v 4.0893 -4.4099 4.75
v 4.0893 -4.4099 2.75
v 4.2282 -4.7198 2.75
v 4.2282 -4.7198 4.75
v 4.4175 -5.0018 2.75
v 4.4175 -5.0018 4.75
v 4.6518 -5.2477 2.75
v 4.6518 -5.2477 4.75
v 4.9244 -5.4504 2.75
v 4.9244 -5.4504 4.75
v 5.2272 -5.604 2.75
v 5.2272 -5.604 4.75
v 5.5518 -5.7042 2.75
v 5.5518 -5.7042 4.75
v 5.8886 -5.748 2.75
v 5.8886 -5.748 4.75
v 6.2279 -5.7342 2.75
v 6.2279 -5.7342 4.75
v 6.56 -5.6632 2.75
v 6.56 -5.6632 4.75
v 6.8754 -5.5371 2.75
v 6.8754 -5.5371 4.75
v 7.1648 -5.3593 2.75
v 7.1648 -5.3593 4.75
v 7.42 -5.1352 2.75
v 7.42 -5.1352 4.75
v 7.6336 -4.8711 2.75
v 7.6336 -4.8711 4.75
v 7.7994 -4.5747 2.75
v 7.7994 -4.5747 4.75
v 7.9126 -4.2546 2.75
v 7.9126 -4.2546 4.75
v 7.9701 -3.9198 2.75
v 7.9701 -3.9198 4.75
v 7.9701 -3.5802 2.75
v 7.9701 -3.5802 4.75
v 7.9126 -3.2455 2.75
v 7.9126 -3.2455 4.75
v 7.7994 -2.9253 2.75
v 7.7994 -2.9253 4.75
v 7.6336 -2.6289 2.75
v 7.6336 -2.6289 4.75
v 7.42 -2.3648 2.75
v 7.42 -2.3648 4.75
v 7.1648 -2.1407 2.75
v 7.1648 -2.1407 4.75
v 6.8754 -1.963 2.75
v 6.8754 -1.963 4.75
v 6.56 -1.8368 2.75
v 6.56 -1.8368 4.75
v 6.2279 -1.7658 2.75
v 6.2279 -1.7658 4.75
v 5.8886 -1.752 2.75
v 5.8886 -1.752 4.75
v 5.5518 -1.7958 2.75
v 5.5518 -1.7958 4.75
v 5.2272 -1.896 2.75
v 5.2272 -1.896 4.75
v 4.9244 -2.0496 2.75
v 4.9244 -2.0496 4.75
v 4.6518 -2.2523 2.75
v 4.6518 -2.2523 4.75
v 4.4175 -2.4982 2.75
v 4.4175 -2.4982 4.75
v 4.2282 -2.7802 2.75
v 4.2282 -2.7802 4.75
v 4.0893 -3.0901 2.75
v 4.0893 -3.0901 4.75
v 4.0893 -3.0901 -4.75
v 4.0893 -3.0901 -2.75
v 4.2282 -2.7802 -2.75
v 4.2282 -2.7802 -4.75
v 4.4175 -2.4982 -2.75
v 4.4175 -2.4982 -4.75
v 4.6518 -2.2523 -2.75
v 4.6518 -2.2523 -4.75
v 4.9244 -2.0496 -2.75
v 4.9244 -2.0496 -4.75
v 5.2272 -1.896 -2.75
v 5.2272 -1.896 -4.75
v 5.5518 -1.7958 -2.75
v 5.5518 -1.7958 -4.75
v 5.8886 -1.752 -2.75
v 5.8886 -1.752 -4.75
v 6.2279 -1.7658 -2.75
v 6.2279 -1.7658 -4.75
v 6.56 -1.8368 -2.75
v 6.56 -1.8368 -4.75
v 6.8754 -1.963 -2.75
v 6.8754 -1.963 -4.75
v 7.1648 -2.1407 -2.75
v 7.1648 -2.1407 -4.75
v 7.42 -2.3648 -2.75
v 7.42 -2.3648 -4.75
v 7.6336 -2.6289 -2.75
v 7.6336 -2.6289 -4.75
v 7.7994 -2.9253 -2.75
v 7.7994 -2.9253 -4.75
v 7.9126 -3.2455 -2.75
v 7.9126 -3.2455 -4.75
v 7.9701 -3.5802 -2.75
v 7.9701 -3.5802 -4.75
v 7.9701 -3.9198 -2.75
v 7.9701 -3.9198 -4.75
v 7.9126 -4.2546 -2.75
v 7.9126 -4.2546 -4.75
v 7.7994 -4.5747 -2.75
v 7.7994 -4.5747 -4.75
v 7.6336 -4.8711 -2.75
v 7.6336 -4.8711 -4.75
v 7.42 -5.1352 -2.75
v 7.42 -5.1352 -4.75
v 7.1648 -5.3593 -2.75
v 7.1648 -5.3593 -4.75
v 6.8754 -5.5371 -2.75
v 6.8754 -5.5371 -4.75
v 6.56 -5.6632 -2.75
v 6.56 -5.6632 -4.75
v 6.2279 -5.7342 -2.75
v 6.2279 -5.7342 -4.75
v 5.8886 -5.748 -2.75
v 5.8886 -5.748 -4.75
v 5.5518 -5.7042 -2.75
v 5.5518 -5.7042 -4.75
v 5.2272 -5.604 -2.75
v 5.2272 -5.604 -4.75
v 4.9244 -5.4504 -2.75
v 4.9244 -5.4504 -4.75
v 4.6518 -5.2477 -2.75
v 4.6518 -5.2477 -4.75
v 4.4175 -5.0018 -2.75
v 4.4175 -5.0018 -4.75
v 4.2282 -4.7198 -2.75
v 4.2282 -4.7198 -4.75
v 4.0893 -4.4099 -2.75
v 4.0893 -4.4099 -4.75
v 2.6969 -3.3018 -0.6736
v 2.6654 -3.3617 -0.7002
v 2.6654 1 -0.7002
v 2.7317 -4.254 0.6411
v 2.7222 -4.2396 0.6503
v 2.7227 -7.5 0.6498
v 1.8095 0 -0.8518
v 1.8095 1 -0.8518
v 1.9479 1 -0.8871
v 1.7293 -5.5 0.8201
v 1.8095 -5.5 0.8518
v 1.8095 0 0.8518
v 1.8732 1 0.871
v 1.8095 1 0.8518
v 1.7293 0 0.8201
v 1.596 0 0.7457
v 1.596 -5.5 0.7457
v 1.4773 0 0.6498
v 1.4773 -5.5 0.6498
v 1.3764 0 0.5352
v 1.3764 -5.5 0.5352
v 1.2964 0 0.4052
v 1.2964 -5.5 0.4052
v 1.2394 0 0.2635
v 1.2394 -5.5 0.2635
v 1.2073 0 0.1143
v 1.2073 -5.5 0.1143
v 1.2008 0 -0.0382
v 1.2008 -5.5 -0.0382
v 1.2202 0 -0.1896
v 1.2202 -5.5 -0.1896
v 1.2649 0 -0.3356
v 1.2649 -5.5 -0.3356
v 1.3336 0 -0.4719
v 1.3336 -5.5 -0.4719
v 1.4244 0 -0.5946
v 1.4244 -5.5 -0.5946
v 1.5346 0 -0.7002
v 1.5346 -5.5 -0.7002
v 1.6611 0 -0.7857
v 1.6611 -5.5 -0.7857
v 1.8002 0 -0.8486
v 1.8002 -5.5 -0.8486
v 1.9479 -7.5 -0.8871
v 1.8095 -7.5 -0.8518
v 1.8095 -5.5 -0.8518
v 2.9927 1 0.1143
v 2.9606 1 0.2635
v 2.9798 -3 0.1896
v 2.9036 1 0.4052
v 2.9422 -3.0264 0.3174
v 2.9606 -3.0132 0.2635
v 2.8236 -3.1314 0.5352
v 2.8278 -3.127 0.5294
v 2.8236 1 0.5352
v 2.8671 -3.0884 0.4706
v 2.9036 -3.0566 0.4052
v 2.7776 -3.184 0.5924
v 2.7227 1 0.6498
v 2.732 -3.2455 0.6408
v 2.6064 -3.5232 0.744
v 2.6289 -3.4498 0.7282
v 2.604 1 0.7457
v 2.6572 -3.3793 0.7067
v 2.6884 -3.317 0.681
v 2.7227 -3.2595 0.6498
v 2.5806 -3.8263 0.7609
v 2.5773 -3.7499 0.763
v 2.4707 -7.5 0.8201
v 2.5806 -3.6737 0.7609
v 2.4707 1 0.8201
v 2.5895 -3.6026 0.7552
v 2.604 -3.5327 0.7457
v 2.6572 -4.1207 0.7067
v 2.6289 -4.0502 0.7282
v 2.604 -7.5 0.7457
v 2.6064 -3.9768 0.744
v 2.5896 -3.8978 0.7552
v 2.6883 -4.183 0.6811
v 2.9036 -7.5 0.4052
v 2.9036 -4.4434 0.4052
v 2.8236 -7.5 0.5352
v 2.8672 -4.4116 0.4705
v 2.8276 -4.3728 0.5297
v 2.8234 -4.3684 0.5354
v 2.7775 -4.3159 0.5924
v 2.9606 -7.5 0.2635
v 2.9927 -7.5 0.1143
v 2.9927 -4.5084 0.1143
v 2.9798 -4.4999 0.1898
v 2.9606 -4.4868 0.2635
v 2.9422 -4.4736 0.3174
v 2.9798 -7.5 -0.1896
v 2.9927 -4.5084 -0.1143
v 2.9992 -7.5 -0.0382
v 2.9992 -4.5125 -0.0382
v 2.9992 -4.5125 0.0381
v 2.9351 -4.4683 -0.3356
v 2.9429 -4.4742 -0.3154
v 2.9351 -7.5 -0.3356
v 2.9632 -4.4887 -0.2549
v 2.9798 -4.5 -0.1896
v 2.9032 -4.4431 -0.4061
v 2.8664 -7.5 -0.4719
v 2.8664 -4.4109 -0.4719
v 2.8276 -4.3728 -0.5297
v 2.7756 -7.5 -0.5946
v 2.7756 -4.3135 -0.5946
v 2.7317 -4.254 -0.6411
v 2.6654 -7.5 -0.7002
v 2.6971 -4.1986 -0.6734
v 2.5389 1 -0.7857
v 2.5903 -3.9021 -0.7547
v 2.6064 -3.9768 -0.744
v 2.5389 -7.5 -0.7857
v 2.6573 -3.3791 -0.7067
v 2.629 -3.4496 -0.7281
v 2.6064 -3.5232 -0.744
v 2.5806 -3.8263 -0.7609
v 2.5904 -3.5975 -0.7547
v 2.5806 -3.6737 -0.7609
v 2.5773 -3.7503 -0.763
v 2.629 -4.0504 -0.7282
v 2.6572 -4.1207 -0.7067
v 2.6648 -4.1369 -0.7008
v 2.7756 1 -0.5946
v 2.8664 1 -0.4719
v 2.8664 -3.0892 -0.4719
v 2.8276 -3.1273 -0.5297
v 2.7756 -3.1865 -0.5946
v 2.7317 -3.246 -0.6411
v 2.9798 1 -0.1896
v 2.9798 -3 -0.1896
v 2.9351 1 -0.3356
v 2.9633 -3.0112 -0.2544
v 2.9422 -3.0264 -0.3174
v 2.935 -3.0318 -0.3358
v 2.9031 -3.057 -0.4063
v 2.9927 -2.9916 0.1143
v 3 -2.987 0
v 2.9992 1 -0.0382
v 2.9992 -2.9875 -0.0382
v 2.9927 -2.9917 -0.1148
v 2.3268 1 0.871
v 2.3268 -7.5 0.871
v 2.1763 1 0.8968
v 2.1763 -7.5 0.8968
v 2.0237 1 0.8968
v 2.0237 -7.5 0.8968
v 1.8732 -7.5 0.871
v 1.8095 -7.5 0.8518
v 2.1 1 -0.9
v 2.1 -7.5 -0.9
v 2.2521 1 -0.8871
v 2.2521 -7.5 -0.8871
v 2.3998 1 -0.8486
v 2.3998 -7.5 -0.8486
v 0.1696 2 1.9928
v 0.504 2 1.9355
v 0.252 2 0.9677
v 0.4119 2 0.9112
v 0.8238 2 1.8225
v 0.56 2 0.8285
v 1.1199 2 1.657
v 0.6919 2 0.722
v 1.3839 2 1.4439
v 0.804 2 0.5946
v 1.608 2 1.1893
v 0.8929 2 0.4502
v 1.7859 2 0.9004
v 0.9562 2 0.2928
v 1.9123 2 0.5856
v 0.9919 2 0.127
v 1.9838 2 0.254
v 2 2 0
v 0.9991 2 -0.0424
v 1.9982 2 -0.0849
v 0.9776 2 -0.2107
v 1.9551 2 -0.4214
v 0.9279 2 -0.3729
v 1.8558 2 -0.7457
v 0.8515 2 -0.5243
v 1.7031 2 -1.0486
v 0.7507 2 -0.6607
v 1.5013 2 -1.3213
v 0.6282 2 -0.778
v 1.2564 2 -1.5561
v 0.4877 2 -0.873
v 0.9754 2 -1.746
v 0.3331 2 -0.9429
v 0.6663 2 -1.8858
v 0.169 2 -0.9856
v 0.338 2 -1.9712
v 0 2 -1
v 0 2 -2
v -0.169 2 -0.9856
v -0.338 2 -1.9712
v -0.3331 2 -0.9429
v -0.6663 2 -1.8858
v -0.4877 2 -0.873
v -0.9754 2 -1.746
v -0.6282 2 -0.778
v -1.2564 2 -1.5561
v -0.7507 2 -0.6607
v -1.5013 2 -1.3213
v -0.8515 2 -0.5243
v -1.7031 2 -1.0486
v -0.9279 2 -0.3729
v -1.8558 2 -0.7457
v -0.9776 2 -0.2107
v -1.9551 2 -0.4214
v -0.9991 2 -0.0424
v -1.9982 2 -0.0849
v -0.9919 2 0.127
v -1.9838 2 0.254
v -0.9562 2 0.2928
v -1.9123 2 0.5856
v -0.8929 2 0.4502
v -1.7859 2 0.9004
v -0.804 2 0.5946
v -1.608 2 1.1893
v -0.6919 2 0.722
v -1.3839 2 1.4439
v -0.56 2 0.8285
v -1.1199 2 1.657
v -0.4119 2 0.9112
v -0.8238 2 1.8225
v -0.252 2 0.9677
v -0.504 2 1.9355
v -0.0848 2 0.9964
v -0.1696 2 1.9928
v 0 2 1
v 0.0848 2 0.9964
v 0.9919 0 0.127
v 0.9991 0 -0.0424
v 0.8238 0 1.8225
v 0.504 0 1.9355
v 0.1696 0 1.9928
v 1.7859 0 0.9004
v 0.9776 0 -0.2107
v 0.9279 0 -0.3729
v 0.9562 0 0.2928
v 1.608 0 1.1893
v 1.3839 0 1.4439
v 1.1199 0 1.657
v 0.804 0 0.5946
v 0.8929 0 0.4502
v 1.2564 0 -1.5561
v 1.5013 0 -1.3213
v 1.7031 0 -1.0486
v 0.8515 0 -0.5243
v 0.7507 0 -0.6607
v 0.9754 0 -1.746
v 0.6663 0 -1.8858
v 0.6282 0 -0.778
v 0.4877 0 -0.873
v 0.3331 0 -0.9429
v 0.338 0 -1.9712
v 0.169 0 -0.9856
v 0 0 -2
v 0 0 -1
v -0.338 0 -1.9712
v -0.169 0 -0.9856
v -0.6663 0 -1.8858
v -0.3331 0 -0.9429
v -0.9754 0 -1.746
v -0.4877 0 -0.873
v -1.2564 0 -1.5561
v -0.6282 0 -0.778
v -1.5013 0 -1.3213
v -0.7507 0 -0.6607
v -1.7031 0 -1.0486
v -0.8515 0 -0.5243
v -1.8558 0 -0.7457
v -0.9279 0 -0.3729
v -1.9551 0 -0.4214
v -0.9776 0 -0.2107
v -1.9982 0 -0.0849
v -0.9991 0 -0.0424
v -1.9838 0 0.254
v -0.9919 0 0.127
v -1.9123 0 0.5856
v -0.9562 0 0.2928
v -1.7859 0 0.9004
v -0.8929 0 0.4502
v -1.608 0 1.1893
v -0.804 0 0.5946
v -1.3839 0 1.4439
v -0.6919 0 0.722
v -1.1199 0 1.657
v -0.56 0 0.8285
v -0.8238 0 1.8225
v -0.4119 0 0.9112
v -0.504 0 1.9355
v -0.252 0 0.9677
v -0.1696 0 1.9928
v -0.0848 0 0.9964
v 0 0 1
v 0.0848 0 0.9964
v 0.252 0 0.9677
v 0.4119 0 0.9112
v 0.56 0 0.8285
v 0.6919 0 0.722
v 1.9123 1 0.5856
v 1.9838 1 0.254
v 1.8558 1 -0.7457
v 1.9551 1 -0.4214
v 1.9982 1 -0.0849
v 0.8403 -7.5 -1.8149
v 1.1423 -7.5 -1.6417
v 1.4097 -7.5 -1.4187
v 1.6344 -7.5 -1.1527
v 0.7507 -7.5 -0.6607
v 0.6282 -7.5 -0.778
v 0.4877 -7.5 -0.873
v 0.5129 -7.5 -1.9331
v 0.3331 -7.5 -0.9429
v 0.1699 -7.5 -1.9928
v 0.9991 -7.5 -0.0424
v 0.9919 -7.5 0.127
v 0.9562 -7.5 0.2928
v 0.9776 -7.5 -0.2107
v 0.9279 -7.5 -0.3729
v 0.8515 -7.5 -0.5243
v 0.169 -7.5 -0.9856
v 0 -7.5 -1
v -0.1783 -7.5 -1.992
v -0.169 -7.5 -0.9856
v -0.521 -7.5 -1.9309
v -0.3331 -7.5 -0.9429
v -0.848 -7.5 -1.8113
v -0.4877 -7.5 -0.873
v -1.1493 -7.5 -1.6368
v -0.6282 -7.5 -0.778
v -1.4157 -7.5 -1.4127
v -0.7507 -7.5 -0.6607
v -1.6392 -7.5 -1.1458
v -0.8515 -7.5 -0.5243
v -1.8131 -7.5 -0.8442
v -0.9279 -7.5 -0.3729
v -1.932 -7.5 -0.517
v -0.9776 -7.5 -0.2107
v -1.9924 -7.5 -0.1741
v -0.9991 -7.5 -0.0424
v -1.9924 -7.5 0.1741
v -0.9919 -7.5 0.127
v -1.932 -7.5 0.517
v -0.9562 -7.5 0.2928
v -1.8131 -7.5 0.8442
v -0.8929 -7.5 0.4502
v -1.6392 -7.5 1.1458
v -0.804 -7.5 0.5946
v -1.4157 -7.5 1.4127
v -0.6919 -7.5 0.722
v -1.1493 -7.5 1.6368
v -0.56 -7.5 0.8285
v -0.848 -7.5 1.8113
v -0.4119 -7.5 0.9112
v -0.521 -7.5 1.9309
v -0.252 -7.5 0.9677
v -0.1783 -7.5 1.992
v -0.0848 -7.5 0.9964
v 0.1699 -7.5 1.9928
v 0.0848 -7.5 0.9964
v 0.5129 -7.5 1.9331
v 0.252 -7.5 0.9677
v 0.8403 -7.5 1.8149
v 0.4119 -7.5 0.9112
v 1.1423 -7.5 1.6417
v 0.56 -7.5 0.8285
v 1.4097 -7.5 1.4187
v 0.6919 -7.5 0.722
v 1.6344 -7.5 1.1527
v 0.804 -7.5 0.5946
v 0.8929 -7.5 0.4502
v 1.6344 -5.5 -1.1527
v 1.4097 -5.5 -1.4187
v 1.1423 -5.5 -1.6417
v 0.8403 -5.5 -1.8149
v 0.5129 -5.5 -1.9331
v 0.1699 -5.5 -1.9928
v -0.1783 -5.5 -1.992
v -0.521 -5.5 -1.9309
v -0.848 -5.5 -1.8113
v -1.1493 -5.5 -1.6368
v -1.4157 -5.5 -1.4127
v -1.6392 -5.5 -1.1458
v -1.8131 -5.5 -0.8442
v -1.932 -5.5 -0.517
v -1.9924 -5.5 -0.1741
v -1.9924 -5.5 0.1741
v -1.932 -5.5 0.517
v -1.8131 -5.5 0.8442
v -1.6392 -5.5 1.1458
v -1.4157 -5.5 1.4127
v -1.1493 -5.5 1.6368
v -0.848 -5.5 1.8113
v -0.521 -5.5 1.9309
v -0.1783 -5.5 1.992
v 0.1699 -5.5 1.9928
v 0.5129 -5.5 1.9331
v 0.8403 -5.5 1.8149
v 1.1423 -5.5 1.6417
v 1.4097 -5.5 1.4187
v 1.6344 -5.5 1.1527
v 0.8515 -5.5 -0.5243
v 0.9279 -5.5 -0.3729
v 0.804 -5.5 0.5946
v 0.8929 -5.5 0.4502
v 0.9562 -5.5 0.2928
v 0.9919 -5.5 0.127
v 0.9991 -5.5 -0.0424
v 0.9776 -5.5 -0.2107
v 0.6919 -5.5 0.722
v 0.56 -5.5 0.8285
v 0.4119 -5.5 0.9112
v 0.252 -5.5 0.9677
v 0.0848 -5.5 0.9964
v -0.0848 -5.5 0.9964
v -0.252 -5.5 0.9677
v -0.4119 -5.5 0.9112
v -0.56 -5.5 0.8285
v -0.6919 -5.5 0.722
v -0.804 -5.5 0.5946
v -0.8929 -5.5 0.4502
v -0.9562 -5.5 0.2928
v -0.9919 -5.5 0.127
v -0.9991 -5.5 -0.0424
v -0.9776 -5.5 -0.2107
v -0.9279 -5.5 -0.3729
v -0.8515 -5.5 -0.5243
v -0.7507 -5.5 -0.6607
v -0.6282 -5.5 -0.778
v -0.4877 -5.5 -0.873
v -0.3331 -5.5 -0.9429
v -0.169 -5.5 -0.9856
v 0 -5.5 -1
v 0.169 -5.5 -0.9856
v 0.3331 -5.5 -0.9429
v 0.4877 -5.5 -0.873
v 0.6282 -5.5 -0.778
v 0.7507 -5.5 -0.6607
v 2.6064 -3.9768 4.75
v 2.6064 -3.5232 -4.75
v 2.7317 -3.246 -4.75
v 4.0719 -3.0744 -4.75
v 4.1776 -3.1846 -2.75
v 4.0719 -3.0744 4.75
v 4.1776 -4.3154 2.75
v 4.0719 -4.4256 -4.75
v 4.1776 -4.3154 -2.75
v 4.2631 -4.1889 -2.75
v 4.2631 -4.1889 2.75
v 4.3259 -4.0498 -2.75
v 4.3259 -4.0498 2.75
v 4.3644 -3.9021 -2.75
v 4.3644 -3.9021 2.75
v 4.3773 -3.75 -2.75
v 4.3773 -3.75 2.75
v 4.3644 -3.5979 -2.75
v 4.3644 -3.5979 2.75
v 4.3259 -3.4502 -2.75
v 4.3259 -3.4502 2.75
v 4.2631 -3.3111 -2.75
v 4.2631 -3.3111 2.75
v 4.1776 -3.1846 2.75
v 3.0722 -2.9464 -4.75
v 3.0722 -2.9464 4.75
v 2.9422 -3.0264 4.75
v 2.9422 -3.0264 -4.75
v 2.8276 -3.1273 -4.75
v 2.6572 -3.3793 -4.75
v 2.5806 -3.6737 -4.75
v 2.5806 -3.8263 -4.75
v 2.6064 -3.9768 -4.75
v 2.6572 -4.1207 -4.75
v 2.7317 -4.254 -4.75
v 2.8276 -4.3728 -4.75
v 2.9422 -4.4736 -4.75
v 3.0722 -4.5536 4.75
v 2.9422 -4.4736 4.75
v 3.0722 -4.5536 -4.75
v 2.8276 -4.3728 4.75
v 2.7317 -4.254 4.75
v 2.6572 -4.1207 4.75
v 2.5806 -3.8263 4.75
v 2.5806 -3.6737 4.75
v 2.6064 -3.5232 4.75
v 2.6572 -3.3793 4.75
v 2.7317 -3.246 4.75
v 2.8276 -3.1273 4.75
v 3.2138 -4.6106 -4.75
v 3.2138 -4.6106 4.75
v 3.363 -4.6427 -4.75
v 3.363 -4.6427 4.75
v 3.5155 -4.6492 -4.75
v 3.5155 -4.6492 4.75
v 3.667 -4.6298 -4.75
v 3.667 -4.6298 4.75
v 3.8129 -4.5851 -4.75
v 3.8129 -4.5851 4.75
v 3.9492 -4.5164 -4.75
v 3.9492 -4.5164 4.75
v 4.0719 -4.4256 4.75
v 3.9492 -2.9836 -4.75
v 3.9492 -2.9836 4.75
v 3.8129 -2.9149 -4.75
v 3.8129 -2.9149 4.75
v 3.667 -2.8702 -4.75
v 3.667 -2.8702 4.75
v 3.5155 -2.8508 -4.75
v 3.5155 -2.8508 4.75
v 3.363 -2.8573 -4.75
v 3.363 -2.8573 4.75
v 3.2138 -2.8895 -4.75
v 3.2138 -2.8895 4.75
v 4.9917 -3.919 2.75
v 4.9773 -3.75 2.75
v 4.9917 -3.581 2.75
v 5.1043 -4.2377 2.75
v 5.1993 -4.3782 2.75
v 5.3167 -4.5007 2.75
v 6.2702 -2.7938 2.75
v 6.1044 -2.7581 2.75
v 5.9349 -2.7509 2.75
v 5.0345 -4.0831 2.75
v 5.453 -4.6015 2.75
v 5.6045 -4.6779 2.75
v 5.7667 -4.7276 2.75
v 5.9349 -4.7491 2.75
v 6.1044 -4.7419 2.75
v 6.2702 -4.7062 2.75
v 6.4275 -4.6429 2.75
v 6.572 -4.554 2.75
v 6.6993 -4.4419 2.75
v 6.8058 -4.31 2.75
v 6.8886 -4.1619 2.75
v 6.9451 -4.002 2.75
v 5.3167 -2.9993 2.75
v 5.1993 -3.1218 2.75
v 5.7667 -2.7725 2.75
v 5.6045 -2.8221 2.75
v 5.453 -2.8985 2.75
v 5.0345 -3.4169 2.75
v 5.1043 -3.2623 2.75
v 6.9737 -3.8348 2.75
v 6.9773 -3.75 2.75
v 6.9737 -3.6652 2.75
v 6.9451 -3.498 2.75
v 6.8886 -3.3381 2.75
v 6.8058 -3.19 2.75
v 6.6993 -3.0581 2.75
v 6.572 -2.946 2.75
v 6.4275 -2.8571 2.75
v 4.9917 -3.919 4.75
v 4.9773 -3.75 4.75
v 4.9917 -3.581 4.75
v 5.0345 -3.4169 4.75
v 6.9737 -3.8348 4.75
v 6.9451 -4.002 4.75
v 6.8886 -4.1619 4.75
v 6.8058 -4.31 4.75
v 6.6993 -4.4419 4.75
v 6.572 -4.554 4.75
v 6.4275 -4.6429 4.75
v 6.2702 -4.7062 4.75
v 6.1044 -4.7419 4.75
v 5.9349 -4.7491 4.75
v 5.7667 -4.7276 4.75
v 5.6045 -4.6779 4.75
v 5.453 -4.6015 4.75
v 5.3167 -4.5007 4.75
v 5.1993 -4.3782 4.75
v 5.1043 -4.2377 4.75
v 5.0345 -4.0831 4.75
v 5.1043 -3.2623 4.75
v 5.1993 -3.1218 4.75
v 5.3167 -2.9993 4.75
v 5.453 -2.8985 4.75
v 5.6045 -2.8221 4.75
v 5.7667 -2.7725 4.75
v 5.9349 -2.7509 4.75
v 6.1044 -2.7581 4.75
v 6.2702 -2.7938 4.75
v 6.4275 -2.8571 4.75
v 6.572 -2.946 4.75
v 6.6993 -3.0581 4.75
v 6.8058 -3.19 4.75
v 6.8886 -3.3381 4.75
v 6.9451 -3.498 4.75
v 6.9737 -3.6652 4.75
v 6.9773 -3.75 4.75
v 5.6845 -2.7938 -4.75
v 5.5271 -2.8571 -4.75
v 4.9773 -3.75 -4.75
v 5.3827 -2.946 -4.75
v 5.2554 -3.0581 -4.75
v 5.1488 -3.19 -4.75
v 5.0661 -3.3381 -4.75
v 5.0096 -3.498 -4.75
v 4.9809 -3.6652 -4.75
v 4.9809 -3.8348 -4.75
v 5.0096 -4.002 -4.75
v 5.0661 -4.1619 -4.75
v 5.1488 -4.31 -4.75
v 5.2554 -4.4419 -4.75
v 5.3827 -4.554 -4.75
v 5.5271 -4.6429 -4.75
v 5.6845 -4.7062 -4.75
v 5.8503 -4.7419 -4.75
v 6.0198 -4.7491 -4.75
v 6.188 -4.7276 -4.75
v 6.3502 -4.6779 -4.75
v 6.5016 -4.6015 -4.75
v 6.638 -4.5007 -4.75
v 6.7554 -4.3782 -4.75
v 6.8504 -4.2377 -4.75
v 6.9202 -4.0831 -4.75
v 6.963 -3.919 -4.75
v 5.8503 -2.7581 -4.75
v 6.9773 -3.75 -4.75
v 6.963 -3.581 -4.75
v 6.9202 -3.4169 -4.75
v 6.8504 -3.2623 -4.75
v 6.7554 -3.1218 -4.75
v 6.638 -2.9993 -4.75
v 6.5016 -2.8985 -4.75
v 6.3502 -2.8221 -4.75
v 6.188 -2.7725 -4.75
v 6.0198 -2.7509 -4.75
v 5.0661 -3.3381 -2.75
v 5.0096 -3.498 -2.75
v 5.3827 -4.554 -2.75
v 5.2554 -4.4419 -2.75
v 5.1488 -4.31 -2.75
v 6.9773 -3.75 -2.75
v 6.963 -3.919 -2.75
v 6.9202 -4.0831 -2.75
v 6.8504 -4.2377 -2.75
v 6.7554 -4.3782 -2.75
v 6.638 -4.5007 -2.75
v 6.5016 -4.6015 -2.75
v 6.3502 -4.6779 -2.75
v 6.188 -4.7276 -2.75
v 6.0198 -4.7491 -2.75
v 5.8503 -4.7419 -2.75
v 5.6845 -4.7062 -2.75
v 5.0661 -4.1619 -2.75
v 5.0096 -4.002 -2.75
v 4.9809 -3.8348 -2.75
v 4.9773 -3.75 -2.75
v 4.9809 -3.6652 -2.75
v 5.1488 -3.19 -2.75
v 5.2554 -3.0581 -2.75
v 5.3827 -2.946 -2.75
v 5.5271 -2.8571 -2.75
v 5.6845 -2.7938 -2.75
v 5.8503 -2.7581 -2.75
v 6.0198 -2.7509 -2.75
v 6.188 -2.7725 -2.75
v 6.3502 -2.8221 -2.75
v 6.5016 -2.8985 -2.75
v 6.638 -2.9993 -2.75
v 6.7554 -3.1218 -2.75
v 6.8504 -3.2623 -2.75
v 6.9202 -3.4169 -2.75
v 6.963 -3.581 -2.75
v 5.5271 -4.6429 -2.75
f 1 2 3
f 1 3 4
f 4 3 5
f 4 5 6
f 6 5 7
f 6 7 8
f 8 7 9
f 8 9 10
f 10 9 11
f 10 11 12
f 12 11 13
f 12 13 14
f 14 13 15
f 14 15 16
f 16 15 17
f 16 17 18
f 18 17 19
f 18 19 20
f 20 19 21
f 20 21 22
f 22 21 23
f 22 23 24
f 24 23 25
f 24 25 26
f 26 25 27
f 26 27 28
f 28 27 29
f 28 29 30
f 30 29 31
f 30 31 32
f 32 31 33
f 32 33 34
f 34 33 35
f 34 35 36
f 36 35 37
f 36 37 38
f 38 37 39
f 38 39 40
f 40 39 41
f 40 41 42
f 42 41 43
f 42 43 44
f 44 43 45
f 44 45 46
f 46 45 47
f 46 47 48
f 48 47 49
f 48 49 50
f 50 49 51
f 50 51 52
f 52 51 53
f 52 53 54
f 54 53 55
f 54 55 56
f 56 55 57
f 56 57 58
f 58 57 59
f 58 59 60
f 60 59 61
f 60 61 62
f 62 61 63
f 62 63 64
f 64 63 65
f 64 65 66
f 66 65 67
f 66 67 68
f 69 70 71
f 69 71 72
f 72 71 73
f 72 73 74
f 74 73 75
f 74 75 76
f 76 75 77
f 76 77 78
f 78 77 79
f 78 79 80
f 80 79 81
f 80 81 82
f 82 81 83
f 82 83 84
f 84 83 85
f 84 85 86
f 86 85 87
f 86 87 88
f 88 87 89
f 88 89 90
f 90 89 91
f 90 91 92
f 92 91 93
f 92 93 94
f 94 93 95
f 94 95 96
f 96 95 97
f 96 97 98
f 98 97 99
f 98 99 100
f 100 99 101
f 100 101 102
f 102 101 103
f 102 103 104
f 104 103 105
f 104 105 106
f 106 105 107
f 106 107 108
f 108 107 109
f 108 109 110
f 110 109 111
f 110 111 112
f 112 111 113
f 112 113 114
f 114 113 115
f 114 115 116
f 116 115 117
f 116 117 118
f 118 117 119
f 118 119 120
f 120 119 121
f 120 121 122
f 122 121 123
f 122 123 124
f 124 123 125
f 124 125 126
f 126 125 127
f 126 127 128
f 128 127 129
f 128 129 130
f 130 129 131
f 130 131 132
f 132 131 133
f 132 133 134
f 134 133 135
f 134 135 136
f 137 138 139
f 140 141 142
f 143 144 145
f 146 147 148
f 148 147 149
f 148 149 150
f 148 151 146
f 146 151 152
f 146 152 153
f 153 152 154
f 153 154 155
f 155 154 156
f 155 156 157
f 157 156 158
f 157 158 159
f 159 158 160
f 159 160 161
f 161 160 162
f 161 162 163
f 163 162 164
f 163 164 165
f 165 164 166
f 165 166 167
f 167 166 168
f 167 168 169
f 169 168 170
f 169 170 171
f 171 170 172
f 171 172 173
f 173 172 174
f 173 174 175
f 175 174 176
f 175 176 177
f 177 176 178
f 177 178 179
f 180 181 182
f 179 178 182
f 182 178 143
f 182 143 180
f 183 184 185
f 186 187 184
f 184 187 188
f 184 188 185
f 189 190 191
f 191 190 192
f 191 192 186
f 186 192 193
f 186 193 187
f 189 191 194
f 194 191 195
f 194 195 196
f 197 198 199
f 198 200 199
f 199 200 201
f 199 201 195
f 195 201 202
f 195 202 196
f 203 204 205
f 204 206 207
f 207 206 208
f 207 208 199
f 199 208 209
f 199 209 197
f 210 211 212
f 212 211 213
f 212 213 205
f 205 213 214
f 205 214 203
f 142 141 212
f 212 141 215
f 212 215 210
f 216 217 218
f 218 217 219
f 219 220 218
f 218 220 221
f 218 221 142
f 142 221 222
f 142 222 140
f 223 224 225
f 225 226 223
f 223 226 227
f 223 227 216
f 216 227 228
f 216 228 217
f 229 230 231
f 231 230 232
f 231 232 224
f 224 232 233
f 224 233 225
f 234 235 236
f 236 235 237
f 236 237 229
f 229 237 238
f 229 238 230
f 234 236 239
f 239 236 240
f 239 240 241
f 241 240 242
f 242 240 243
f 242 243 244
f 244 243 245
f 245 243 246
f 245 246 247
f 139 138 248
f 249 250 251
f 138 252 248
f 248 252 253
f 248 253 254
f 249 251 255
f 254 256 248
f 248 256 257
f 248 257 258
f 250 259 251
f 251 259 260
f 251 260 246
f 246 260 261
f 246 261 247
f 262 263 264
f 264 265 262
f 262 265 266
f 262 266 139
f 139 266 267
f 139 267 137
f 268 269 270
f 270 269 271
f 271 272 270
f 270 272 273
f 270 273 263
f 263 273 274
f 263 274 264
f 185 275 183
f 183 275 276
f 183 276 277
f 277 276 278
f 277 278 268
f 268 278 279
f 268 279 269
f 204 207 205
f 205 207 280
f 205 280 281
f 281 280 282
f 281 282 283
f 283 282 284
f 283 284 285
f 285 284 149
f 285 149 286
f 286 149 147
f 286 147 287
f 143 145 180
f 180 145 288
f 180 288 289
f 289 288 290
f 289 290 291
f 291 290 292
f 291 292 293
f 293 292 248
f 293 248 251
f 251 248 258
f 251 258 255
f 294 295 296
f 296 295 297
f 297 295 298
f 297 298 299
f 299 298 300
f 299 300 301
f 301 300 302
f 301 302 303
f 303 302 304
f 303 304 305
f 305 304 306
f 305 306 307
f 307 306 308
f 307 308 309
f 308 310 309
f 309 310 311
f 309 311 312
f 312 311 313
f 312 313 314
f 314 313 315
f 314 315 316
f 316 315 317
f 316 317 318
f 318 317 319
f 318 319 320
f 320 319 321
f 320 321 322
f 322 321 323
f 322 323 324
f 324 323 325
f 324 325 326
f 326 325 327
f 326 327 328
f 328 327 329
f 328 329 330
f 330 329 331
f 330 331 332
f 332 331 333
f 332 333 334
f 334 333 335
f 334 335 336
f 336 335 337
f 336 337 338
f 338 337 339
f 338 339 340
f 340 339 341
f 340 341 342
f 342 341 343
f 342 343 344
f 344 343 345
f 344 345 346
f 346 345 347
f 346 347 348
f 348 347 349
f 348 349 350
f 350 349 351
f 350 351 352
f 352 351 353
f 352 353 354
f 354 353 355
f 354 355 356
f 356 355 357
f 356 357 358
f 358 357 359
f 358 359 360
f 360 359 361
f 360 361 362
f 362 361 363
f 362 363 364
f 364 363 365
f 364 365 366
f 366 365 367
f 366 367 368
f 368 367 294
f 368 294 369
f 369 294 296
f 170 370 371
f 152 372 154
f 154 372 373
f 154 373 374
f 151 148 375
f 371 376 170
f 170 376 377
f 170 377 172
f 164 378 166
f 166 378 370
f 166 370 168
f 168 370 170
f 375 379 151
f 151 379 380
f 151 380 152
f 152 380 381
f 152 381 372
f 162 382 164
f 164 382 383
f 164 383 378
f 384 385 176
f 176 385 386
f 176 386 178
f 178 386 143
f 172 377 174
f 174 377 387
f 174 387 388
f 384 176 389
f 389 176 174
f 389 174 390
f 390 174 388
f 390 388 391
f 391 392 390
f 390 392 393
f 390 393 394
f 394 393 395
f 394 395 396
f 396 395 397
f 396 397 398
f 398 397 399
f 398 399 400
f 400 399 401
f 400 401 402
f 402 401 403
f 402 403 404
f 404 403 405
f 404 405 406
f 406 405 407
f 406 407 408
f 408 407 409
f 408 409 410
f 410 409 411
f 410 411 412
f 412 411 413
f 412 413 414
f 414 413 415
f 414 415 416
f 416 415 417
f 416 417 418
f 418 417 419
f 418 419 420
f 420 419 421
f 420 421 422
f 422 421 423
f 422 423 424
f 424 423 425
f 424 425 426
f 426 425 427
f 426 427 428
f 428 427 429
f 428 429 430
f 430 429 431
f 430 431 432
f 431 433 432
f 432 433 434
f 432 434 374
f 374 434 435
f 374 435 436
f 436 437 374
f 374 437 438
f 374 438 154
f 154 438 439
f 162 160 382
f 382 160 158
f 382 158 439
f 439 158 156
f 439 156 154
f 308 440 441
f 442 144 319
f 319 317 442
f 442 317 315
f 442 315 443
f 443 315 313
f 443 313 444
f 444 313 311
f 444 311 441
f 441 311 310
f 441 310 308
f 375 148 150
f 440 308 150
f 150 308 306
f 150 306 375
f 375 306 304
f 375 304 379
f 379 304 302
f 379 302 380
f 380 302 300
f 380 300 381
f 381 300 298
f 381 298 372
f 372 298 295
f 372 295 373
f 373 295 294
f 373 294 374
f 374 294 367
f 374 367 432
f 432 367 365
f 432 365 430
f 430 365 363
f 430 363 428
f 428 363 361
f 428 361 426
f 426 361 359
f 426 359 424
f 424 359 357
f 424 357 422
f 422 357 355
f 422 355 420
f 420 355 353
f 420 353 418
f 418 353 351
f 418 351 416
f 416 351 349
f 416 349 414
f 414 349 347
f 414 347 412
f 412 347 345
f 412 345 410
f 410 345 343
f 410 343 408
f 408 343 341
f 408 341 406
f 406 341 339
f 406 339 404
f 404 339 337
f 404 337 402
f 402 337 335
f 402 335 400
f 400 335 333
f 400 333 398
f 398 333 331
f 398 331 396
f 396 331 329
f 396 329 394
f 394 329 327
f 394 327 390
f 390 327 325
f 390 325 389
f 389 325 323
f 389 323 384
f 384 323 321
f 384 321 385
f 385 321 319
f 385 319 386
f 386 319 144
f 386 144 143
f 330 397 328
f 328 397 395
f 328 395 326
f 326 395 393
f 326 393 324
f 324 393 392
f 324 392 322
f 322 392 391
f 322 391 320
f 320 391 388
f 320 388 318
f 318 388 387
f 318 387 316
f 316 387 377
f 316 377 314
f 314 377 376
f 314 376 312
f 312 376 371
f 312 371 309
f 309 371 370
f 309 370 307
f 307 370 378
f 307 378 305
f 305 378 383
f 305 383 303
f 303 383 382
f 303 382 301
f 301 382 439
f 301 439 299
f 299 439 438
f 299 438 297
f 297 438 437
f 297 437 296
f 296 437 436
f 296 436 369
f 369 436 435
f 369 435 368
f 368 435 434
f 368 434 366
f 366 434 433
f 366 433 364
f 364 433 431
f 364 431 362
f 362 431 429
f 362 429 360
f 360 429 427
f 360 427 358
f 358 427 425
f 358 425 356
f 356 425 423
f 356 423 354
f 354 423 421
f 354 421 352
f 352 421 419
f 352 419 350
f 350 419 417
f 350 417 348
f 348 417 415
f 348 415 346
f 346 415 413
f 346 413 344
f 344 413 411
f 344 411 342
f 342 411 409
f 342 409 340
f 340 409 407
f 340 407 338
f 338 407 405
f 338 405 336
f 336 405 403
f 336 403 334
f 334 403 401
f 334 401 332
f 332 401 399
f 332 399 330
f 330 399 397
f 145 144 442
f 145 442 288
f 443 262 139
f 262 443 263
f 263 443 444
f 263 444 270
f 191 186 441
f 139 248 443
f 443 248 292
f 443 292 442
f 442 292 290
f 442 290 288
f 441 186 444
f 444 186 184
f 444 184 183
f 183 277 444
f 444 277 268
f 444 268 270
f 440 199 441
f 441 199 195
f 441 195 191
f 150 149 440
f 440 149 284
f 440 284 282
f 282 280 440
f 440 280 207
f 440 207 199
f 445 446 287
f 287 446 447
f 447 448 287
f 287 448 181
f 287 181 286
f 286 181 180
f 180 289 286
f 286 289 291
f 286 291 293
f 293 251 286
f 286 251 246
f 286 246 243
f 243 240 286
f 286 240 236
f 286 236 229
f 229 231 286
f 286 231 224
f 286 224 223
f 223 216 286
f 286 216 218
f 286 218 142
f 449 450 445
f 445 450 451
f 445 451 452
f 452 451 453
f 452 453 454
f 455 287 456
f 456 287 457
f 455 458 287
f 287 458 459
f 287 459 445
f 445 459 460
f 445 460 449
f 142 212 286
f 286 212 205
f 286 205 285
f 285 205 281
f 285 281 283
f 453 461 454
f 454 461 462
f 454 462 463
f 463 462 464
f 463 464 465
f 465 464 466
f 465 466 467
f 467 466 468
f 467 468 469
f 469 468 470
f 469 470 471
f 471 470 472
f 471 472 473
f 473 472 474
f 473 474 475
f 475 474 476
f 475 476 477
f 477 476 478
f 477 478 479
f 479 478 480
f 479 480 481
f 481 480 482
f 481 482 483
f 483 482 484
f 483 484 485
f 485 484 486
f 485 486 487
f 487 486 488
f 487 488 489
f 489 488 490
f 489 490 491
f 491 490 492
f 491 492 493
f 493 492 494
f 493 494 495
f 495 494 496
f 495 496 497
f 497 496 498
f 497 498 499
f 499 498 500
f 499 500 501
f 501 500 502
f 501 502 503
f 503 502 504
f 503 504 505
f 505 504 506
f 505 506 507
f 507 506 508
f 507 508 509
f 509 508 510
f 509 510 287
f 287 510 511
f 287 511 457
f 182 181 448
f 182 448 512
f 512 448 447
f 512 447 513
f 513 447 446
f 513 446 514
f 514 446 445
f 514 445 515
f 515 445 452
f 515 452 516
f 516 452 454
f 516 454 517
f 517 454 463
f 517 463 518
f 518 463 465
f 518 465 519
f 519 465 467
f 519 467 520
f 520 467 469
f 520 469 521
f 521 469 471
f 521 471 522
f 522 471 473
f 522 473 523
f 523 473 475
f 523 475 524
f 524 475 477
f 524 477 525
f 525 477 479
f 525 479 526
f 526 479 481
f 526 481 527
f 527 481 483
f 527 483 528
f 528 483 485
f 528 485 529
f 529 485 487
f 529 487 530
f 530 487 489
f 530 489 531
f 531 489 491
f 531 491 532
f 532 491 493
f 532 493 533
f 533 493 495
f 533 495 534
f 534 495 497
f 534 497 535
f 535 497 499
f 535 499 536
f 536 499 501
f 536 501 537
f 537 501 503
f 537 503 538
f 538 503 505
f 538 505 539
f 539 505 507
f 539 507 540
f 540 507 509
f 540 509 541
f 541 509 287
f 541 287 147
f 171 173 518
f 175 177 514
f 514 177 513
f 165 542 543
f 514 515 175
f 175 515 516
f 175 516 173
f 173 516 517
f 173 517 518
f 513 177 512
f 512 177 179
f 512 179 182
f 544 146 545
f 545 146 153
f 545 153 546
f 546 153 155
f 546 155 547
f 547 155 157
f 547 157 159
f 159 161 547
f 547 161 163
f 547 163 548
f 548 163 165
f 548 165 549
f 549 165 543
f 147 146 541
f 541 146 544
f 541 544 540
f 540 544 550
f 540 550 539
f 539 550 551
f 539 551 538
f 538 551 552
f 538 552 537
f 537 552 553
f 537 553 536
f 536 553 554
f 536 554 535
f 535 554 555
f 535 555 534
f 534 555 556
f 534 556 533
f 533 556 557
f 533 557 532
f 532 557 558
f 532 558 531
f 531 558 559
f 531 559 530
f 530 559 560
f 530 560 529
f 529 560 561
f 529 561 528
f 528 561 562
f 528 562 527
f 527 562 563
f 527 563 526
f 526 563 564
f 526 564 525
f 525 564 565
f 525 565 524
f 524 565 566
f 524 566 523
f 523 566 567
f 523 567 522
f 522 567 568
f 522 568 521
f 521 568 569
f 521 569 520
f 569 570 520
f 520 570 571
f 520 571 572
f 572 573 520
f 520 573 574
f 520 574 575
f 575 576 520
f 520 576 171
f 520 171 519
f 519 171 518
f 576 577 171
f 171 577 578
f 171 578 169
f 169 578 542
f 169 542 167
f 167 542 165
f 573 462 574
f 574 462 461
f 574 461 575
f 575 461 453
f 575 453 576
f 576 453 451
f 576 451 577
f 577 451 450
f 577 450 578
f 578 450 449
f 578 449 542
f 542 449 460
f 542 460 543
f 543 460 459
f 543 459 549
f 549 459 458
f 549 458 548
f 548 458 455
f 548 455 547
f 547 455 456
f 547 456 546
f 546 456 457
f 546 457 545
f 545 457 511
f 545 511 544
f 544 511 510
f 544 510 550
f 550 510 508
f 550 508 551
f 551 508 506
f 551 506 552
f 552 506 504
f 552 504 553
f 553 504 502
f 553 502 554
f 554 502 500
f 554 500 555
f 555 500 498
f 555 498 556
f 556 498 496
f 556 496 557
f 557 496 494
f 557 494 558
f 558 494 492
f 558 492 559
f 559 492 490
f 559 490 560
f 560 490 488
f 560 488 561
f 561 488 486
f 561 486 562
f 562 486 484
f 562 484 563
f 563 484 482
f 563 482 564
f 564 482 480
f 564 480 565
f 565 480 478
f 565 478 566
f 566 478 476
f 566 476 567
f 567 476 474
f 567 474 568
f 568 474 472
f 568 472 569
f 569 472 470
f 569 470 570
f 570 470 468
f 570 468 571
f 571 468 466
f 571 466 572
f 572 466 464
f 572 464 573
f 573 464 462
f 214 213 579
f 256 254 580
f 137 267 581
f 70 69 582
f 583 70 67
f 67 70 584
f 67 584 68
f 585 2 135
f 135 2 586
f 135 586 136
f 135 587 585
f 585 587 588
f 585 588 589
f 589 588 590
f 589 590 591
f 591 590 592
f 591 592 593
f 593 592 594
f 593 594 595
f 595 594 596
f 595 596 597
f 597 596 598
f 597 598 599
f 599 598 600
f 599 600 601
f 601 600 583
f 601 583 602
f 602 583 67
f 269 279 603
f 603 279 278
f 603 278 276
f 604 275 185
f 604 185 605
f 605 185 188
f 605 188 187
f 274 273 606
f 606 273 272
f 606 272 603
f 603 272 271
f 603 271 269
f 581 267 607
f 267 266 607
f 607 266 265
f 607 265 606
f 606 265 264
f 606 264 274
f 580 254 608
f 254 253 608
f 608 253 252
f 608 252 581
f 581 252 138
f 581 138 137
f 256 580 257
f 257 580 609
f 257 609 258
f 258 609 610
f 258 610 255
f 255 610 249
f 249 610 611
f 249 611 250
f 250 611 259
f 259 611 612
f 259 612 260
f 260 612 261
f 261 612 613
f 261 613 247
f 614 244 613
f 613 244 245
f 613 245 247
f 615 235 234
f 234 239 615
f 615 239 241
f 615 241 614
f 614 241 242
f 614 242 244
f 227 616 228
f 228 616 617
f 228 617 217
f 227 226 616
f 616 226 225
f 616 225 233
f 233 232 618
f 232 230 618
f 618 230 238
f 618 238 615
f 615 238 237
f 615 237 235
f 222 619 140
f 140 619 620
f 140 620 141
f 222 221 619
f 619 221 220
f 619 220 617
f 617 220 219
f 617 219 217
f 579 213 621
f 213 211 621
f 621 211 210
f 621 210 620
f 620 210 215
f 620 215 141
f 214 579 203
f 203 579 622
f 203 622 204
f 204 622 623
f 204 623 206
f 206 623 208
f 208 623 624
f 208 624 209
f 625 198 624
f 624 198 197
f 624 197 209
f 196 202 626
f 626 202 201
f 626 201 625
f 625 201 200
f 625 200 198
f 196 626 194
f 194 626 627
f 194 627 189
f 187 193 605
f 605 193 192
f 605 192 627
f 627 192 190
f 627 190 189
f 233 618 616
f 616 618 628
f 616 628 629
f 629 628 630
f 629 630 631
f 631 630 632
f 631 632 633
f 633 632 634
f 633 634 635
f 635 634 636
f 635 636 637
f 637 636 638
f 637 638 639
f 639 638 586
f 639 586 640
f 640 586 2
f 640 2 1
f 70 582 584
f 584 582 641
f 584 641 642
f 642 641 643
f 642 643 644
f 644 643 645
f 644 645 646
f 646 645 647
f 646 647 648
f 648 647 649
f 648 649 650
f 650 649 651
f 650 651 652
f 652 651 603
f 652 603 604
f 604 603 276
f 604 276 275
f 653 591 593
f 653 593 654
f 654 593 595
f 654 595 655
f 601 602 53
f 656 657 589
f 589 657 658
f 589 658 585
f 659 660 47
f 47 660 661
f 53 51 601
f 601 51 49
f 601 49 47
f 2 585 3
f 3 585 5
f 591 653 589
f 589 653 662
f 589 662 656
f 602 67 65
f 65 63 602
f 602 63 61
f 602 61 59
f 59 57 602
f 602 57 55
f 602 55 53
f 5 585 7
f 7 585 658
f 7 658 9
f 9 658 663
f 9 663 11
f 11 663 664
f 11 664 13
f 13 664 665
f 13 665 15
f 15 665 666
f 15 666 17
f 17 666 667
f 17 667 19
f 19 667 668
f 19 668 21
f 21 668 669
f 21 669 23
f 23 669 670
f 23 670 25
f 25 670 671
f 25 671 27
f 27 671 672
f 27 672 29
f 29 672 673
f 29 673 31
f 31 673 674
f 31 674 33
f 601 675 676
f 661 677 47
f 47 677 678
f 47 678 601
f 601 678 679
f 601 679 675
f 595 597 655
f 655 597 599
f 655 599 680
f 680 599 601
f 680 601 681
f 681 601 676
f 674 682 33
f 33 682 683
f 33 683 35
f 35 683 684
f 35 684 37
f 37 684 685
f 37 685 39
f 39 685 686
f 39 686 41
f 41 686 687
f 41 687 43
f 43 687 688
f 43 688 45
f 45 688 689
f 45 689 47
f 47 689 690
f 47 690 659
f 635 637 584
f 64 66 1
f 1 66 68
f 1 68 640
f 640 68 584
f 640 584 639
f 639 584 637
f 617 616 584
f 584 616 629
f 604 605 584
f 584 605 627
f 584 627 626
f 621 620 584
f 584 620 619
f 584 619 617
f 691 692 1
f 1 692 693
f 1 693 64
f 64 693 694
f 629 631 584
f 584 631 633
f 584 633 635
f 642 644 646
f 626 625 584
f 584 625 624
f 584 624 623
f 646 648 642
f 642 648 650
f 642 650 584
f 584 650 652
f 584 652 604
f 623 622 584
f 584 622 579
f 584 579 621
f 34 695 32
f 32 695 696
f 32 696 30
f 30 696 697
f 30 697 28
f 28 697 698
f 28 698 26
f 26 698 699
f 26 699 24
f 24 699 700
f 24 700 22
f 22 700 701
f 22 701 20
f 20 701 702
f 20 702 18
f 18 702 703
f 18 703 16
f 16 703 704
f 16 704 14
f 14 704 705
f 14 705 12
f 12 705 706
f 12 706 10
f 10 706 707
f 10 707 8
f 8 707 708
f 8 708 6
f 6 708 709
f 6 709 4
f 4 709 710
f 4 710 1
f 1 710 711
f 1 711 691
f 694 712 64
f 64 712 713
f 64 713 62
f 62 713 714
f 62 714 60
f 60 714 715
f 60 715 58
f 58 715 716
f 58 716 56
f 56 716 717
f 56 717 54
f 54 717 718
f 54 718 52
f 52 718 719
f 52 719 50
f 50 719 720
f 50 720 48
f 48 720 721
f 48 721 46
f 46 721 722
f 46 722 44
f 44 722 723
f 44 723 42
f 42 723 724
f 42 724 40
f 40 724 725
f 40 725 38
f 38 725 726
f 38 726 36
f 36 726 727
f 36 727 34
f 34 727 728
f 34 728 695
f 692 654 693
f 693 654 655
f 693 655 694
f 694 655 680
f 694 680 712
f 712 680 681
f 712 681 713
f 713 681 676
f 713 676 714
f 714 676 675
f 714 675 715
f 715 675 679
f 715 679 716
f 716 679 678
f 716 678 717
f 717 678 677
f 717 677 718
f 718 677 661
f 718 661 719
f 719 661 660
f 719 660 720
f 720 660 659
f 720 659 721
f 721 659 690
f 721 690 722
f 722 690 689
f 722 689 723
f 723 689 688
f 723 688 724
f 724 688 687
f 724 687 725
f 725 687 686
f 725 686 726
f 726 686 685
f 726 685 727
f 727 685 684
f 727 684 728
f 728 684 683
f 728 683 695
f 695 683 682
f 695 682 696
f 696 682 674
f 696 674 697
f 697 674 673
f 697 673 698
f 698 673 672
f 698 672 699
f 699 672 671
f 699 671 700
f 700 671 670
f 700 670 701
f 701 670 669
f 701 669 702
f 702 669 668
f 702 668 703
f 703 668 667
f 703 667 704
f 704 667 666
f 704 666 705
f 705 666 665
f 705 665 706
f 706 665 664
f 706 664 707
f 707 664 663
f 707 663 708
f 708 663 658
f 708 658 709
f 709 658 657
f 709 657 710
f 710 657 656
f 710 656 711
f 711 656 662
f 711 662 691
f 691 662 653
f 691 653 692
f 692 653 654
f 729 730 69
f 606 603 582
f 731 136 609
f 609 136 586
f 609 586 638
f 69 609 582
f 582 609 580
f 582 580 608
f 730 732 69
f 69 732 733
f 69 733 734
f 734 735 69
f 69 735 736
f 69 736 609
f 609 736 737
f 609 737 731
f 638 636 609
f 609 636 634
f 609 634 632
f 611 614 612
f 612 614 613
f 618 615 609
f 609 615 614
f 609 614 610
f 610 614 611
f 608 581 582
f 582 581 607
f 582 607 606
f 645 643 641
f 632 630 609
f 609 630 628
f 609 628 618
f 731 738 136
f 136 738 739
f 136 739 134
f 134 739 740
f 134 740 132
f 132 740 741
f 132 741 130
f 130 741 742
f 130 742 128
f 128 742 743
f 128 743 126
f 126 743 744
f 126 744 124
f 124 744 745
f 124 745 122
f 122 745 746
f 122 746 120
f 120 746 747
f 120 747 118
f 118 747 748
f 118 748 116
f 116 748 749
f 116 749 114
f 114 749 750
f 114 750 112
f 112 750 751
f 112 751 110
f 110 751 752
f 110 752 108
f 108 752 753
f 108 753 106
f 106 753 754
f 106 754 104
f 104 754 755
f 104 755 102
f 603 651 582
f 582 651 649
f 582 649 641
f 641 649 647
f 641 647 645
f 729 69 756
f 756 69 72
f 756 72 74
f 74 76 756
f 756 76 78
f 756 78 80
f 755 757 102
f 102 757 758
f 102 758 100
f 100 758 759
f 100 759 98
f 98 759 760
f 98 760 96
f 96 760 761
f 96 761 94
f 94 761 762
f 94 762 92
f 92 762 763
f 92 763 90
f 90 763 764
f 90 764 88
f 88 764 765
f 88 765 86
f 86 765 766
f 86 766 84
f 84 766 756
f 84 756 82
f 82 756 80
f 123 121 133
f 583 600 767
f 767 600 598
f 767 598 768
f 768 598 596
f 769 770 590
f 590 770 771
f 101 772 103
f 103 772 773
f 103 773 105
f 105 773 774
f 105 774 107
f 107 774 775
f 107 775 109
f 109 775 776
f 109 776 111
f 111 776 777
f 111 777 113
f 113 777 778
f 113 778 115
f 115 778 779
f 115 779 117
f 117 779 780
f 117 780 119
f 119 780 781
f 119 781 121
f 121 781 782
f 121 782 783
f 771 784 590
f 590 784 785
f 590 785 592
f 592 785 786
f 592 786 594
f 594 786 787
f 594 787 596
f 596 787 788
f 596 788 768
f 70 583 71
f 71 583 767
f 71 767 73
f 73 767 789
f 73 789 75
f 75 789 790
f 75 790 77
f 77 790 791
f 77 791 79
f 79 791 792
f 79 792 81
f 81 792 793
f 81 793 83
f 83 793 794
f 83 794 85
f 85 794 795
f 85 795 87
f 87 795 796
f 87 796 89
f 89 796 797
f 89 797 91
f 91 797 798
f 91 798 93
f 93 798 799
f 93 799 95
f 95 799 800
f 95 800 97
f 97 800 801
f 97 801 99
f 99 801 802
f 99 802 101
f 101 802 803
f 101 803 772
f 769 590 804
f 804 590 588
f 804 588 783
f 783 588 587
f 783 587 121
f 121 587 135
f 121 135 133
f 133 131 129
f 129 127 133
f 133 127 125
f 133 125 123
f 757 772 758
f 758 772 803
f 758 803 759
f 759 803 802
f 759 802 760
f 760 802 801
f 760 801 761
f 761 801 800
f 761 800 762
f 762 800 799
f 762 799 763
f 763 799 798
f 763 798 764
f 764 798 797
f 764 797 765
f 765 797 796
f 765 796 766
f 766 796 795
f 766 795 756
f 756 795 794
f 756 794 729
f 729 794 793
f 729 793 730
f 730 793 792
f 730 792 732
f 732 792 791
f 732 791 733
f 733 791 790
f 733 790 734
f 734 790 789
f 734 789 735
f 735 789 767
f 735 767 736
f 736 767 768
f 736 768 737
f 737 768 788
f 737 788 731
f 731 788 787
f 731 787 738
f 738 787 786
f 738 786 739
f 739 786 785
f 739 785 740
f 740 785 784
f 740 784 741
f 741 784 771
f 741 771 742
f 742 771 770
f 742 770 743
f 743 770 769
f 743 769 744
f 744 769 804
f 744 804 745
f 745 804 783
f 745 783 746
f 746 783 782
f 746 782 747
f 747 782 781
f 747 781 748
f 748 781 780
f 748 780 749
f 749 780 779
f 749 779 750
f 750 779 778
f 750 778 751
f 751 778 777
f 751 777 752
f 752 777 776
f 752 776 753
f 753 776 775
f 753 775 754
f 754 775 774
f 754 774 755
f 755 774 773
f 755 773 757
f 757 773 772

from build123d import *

# Parameters (mm, degrees)
SKETCH_1_R             = 2
SKETCH_1_R_2           = 1
EXTRUDE_1_DEPTH        = 2
EXTRUDE_1_2_DEPTH      = 7.5
EXTRUDE_1_2_DEPTH_BACK = 1
SKETCH_2_R             = 0.9
SKETCH_3_R             = 2
SKETCH_3_R_2           = 1
EXTRUDE_2_DEPTH        = 2
SKETCH_7_R             = 0.5
EXTRUDE_4_DEPTH        = 2
EXTRUDE_7_DEPTH        = 2.75
EXTRUDE_7_DEPTH_BACK   = 2.75
SKETCH_11_R            = 0.9
SKETCH_12_R            = 2
SKETCH_12_R_2          = 1
EXTRUDE_5_DEPTH        = 2
EXTRUDE_START          = 2
SKETCH_13_R            = 2
SKETCH_13_R_2          = 1
EXTRUDE_6_DEPTH        = 2
SKETCH_15_R            = 0.9
EXTRUDE_8_DEPTH        = 2
SKETCH_16_R            = 0.9
EXTRUDE_9_DEPTH        = 2


with BuildPart() as part:
    # 草图1 → Extrude 1 (new body)
    with BuildSketch(Plane(origin=(0, 0, 0), x_dir=(1, 0, 0), z_dir=(0, 1, 0))):
        Circle(SKETCH_1_R)
        Circle(SKETCH_1_R_2, mode=Mode.SUBTRACT)
    extrude(amount=EXTRUDE_1_DEPTH)

    # 草图2 → Extrude 1 2 (add, two sides: drawn at the far end of the back side and taken through both)
    with BuildSketch(Plane.XZ.offset(-EXTRUDE_1_2_DEPTH_BACK)):
        with Locations((2.1, 0)):
            Circle(SKETCH_2_R)
    extrude(amount=EXTRUDE_1_2_DEPTH + EXTRUDE_1_2_DEPTH_BACK)

    # 草图3 → 凸台-拉伸2 (add)
    with BuildSketch(Plane.XZ.offset(7.5)):
        Circle(SKETCH_3_R)
        Circle(SKETCH_3_R_2, mode=Mode.SUBTRACT)
    extrude(amount=-EXTRUDE_2_DEPTH)

    # 草图7 → 凸台-拉伸4 (add)
    with BuildSketch(Plane(origin=(1.877338573, 0, 0), x_dir=(0, 0, -1), z_dir=(1, 0, 0))):
        with Locations((0, -3.75)):
            Circle(SKETCH_7_R)
    extrude(amount=EXTRUDE_4_DEPTH)

    # 草图11 → 凸台-拉伸7 (add, two sides: drawn at the far end of the back side and taken through both)
    with BuildSketch(Plane.XY.offset(-EXTRUDE_7_DEPTH_BACK)):
        with Locations((3.477338573, -3.75)):
            Circle(SKETCH_11_R)
    extrude(amount=EXTRUDE_7_DEPTH + EXTRUDE_7_DEPTH_BACK)

    # 草图12 → 拉伸-薄壁5 (add)
    with BuildSketch(Plane.XY.offset(2.75)):
        with Locations((5.977338573, -3.75)):
            Circle(SKETCH_12_R)
        with Locations((5.977338573, -3.75)):
            Circle(SKETCH_12_R_2, mode=Mode.SUBTRACT)
    extrude(amount=EXTRUDE_5_DEPTH)

    # 草图13 → 拉伸-薄壁6 (add)
    with BuildSketch(Plane(origin=(0, 0, -2.75), x_dir=(-1, 0, 0), z_dir=(0, 0, -1)).offset(EXTRUDE_START)):
        with Locations((-5.977338573, -3.75)):
            Circle(SKETCH_13_R)
        with Locations((-5.977338573, -3.75)):
            Circle(SKETCH_13_R_2, mode=Mode.SUBTRACT)
    extrude(amount=-EXTRUDE_6_DEPTH)

    # 草图15 → 凸台-拉伸8 (add)
    with BuildSketch(Plane(origin=(0, 0, -2.75), x_dir=(-1, 0, 0), z_dir=(0, 0, -1))):
        with Locations((-3.477338573, -3.75)):
            Circle(SKETCH_15_R)
    extrude(amount=EXTRUDE_8_DEPTH)

    # 草图16 → 凸台-拉伸9 (add)
    with BuildSketch(Plane.XY.offset(2.75).offset(EXTRUDE_START)):
        with Locations((3.477338573, -3.75)):
            Circle(SKETCH_16_R)
    extrude(amount=-EXTRUDE_9_DEPTH)


solid = part.part
